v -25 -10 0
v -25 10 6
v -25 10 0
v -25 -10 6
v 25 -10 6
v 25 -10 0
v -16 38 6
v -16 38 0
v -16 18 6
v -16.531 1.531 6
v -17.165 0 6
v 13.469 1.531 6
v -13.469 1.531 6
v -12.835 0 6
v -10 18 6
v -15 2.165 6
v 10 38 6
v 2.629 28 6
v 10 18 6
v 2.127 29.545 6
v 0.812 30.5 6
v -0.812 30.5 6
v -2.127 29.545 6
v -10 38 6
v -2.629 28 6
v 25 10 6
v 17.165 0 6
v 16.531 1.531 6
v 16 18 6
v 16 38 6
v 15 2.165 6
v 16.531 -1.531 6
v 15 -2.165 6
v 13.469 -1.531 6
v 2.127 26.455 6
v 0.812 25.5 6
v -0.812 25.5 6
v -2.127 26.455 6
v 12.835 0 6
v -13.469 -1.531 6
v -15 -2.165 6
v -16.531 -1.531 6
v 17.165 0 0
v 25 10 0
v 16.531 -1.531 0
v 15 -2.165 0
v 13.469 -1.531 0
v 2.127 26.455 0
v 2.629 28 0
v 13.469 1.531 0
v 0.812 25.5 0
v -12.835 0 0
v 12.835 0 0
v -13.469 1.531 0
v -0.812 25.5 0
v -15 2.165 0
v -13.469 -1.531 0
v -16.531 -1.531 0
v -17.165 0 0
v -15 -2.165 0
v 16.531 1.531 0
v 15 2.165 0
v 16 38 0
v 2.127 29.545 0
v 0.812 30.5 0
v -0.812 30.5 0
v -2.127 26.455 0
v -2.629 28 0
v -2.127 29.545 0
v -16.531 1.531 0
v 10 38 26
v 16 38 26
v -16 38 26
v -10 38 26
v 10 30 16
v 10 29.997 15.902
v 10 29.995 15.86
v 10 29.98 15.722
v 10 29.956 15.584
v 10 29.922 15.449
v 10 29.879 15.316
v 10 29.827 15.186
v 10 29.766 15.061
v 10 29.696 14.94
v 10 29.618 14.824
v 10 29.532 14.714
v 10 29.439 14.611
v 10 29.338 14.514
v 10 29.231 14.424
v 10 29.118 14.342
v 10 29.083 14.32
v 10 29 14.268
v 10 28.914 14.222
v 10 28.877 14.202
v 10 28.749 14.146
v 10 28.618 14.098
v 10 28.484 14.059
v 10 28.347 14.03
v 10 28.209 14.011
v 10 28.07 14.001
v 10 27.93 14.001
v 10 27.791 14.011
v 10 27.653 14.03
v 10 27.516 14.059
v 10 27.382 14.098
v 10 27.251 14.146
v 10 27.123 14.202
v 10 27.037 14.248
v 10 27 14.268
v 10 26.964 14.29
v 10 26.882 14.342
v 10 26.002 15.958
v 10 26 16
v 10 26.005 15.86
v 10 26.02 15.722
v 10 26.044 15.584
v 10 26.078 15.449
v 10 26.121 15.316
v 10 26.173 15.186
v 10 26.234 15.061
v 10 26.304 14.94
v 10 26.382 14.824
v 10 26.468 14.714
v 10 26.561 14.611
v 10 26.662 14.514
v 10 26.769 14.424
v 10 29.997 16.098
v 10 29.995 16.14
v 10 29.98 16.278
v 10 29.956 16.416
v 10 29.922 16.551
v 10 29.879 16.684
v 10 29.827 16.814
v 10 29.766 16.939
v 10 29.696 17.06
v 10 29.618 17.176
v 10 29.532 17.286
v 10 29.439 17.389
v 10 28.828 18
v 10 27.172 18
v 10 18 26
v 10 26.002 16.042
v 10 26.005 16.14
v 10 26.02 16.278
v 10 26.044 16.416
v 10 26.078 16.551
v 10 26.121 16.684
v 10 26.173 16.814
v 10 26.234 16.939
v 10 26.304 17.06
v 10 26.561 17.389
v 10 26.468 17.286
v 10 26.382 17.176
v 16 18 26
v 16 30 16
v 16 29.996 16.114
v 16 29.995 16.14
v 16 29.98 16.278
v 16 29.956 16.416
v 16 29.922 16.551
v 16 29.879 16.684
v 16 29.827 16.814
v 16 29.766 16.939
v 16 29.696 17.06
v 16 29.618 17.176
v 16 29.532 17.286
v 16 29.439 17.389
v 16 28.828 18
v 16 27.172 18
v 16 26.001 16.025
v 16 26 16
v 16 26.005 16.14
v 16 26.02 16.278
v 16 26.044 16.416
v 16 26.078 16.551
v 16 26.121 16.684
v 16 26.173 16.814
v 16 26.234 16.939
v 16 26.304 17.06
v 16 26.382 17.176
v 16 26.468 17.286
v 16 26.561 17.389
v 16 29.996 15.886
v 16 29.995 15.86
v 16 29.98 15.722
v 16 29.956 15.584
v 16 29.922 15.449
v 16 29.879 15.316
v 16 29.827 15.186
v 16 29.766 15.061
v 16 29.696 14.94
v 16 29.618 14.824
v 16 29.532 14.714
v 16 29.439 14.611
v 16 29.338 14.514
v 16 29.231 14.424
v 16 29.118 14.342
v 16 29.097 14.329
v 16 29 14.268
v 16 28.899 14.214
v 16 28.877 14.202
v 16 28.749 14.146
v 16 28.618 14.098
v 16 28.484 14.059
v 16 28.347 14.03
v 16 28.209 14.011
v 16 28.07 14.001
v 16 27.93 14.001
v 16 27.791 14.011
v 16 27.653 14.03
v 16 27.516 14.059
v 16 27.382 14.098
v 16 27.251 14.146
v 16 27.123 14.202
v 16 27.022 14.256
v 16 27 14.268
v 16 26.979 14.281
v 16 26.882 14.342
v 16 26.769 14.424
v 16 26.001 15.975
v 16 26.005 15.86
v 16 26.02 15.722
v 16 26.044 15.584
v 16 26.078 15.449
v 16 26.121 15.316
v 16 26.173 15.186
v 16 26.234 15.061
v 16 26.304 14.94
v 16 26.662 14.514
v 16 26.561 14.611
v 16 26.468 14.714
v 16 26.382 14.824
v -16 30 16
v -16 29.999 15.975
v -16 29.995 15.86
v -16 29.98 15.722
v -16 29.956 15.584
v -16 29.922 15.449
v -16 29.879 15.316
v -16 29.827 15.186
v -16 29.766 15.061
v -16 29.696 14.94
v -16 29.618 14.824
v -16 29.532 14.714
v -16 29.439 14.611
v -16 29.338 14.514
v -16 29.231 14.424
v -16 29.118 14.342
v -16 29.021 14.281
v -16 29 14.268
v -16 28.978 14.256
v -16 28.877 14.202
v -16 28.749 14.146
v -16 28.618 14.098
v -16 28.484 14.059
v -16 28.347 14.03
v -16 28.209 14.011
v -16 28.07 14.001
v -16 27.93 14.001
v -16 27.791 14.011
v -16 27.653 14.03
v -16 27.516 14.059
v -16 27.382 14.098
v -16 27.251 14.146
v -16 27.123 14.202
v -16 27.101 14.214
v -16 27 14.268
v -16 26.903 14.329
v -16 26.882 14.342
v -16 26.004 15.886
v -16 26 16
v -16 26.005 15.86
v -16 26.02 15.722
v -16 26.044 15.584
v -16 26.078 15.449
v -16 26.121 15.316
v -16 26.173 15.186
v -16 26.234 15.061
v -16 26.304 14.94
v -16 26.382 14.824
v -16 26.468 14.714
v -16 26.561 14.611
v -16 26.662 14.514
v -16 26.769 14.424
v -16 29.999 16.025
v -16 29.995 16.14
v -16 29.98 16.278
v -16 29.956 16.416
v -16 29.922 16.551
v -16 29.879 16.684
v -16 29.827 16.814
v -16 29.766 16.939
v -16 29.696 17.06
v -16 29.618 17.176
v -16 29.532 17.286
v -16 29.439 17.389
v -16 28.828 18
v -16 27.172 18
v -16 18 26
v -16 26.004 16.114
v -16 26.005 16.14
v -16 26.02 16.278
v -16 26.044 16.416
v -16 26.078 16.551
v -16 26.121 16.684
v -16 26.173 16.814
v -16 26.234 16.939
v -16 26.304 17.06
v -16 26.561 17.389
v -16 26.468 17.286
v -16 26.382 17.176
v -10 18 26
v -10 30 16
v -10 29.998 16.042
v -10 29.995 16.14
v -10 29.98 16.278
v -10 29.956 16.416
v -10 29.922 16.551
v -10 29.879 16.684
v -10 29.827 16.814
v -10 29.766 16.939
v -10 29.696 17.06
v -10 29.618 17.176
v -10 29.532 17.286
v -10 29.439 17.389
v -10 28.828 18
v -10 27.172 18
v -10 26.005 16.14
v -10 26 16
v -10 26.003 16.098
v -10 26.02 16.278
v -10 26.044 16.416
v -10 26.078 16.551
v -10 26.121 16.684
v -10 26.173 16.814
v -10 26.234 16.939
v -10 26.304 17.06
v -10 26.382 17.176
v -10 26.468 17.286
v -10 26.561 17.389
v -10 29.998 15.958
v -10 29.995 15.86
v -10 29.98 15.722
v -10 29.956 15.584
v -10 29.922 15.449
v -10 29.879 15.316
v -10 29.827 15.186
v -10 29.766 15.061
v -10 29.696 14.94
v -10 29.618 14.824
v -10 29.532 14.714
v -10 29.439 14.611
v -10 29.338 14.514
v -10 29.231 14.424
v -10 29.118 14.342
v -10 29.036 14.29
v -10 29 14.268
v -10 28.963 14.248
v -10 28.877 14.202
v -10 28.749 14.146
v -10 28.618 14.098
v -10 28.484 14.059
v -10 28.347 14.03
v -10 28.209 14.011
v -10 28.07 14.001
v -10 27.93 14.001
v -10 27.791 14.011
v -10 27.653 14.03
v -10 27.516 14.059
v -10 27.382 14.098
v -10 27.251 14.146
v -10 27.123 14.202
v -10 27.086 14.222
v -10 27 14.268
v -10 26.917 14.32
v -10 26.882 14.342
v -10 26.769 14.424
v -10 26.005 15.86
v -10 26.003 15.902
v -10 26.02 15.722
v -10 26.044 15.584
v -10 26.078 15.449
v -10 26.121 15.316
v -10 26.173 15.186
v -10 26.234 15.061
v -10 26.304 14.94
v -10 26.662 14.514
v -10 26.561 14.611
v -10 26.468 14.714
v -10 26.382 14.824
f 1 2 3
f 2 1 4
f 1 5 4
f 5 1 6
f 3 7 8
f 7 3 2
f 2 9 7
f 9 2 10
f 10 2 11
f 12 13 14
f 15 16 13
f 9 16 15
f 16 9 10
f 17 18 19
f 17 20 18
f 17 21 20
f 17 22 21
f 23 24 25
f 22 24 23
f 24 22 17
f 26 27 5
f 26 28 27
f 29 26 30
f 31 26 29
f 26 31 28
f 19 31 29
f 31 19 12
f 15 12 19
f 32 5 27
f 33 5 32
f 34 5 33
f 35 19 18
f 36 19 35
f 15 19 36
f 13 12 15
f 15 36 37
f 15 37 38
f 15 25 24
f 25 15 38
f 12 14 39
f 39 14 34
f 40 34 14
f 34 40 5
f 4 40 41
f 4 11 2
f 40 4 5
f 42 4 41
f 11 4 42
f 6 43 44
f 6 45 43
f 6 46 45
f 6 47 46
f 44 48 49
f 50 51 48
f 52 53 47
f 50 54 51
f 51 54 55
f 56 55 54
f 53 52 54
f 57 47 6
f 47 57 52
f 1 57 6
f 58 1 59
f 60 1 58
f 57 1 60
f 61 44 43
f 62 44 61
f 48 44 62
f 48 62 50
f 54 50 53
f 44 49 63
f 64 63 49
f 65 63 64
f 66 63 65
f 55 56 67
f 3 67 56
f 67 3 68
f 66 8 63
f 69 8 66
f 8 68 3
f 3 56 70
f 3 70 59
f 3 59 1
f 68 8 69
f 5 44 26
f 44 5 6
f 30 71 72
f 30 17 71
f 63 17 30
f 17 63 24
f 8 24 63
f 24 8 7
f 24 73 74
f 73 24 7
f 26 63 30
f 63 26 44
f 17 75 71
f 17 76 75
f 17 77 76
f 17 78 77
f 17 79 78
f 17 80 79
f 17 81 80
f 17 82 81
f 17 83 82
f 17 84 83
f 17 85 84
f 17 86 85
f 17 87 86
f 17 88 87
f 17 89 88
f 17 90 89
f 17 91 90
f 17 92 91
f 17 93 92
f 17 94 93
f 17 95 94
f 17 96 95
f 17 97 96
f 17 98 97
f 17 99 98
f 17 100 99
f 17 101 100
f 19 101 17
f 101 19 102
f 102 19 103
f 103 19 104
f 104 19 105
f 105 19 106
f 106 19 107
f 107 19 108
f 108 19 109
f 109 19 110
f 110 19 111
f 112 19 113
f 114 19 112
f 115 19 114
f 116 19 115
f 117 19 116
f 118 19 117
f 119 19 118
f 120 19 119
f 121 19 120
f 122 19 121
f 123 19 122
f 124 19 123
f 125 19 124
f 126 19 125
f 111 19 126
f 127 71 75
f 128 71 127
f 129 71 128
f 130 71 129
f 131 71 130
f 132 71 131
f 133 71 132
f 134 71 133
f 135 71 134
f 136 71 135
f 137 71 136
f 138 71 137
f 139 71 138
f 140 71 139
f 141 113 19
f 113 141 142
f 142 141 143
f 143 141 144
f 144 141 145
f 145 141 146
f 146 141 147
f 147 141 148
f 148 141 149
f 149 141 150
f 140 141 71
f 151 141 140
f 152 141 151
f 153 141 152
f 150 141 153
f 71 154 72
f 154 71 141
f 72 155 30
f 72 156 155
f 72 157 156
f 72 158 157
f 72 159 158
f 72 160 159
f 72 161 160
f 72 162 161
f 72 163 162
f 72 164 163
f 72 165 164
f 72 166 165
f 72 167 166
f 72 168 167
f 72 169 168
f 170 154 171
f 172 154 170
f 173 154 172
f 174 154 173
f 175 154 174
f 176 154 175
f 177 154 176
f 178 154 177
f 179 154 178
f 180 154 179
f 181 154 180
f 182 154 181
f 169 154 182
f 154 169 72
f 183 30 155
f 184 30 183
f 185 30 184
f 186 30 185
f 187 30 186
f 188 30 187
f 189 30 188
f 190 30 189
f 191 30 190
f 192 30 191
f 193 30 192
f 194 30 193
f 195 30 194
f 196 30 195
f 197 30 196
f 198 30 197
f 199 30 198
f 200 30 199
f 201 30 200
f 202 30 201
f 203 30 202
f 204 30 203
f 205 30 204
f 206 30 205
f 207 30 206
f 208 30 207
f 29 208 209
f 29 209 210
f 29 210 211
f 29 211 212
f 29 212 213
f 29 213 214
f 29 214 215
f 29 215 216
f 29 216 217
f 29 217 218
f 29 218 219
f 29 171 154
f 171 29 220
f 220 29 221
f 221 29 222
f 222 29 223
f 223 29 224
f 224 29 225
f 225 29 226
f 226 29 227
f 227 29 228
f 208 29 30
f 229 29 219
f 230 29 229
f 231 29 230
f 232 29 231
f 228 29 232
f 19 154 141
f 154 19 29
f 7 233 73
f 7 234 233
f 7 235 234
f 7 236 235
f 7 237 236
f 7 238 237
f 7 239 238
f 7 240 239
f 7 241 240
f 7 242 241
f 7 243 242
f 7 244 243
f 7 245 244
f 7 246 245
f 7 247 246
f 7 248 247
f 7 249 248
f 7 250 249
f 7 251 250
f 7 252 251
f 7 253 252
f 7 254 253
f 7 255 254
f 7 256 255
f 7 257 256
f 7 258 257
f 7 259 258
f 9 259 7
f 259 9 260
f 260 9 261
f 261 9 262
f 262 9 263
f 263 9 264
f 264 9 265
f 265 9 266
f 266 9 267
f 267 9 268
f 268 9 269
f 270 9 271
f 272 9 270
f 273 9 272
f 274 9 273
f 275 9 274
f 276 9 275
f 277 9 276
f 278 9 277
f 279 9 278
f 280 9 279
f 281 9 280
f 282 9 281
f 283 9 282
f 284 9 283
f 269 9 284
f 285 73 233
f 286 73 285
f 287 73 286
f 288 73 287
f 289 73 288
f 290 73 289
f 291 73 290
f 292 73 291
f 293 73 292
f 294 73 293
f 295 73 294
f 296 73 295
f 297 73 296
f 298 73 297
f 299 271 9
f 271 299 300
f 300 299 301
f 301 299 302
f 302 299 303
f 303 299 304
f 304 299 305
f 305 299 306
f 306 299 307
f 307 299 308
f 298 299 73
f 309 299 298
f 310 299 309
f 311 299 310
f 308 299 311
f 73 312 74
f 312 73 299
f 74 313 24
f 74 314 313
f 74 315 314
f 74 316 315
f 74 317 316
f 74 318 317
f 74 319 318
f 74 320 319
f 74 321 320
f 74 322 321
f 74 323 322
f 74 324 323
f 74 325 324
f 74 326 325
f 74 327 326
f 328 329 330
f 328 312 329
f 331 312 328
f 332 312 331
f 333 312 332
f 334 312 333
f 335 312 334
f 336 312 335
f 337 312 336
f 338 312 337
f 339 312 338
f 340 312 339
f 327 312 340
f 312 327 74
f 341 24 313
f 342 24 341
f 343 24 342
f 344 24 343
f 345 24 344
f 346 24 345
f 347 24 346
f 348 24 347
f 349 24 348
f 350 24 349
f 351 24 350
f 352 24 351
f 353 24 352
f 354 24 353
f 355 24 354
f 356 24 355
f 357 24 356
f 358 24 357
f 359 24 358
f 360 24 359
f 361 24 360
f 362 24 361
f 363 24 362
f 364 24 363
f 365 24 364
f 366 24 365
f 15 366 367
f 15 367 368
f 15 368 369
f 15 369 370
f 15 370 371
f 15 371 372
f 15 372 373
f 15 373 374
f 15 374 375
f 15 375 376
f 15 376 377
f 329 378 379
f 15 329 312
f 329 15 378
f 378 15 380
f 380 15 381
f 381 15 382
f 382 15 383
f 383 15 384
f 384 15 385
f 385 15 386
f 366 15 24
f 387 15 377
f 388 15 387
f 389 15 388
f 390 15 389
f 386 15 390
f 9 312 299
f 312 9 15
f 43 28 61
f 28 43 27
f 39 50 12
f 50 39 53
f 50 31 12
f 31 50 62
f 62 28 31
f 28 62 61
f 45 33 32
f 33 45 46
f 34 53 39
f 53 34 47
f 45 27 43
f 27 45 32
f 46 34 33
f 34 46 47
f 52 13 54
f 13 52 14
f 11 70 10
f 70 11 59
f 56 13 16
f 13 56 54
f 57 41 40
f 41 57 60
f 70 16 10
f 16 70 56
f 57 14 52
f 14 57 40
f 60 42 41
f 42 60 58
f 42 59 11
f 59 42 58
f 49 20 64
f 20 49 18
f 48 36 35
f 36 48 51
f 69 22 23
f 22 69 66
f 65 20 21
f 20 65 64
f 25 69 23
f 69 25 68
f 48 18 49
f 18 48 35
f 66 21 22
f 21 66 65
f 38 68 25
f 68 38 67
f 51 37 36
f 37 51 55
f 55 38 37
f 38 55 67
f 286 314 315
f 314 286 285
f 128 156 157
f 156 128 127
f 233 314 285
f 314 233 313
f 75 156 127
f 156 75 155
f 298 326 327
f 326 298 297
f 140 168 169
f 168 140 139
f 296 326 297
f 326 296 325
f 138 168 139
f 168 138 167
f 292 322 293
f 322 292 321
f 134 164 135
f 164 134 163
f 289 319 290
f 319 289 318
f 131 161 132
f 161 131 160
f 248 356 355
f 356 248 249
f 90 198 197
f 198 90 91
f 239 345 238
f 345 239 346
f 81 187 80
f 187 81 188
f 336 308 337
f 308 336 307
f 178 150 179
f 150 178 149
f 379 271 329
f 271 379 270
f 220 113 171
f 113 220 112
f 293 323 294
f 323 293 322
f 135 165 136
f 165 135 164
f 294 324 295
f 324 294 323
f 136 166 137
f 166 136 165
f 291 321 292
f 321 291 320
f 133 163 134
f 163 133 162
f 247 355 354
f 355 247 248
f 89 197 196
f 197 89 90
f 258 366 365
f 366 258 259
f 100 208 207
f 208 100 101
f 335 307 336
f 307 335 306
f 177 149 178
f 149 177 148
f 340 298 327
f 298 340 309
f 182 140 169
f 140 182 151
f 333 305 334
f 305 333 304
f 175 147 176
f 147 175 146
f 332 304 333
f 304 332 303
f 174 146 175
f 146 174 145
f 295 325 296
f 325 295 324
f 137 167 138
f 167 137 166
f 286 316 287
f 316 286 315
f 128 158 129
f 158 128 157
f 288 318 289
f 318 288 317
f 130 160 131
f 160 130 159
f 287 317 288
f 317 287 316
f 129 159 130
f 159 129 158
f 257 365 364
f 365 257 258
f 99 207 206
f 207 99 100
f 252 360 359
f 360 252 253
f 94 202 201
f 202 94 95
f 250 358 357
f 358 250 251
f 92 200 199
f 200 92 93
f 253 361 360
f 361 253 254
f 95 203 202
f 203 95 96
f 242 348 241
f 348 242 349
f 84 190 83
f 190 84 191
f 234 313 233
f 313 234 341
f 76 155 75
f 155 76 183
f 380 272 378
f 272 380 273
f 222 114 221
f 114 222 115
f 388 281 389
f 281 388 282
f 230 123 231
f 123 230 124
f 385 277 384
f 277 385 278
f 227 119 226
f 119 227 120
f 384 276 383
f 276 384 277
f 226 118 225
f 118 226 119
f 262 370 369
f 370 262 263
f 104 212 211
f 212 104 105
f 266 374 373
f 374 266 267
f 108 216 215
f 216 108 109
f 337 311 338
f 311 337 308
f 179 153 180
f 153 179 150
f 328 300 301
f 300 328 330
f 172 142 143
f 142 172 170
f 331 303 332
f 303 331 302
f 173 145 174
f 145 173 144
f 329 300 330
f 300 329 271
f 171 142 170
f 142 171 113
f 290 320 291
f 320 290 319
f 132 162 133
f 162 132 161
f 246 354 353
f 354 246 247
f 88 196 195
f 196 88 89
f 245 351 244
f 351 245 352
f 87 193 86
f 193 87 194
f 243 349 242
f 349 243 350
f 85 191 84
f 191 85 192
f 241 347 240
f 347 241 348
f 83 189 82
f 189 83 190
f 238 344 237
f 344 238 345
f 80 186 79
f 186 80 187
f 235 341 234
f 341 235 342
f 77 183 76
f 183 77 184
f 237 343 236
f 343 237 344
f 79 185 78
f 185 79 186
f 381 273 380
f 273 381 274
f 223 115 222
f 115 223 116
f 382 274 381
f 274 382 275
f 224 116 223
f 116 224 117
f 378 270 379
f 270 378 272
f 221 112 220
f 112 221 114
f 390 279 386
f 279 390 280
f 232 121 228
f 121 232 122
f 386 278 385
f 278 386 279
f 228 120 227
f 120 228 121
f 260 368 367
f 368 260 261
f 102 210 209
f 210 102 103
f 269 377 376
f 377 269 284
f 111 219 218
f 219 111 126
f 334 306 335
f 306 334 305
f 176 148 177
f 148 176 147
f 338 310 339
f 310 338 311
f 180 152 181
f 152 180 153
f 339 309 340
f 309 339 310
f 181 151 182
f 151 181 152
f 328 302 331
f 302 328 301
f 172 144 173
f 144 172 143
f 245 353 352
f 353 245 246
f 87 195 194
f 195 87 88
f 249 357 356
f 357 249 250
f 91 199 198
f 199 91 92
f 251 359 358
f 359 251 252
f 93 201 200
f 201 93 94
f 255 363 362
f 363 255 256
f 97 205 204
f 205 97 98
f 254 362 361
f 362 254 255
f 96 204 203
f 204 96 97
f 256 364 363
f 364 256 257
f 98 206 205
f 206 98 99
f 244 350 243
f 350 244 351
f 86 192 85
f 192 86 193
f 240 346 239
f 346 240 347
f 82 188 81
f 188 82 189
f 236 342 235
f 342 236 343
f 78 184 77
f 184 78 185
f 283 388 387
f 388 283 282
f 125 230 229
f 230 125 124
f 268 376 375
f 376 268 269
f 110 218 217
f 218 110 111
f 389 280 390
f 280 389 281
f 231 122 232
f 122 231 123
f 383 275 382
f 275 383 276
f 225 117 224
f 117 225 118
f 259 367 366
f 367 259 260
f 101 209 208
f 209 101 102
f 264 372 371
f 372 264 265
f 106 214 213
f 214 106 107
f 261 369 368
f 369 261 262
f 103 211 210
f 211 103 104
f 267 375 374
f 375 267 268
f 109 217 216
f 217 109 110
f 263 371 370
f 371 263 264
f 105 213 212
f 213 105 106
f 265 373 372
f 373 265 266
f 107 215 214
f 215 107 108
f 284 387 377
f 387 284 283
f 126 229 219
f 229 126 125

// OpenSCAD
// file: trunctear.scad
//A module for truncated tear drops.

trunctear(1, 0.5, $fn = 90);

module trunctear(hei, radian, cent = false)
{
    linear_extrude(height = hei, center = cent)
        hull()
        {
            circle(r = radian);
            translate([0, radian/2])
                square([2*(radian*(2*cos(45)-1)), radian], center = true);
        }
}
// file: polyhole.scad
// The Cylinder is dead! Long live the Cylinder!
// A module for a polyhole by radius, based on Nophead's work.

module polyhole(h, r, cent = false)
{
    n = max(round(4 * r), 3);
    cylinder(h = h, r = r / cos(180 / n), $fn = n, center = cent);
}
// main file
// Brace for extrusion that screws hang from

use<polyhole.scad>
use<trunctear.scad>

LeadExtrusionBrace();

module LeadExtrusionBrace()
{
    difference()
    {
        union()
        {
            hull()
            {
                translate([0, 0, 3])
                    cube([50, 20, 6], center = true);
                translate([0, 28, 3])
                    cube([20+12, 20, 6], center = true);
            }
            translate([13, 28, 13])
                cube([6, 20, , 26], center = true);
            translate([-13, 28, 13])
                cube([6, 20, , 26], center = true);
        }
        translate([15, 0, 0])
            polyhole(6, 2);
        translate([-15, 0, 0])
            polyhole(6, 2);
        translate([0, 28, 0])
            polyhole(6, 2.5);
        translate([-25, 28, 16])
            rotate([90, 0, 90])
                trunctear(50, 2, $fn = 90);
    }
}
